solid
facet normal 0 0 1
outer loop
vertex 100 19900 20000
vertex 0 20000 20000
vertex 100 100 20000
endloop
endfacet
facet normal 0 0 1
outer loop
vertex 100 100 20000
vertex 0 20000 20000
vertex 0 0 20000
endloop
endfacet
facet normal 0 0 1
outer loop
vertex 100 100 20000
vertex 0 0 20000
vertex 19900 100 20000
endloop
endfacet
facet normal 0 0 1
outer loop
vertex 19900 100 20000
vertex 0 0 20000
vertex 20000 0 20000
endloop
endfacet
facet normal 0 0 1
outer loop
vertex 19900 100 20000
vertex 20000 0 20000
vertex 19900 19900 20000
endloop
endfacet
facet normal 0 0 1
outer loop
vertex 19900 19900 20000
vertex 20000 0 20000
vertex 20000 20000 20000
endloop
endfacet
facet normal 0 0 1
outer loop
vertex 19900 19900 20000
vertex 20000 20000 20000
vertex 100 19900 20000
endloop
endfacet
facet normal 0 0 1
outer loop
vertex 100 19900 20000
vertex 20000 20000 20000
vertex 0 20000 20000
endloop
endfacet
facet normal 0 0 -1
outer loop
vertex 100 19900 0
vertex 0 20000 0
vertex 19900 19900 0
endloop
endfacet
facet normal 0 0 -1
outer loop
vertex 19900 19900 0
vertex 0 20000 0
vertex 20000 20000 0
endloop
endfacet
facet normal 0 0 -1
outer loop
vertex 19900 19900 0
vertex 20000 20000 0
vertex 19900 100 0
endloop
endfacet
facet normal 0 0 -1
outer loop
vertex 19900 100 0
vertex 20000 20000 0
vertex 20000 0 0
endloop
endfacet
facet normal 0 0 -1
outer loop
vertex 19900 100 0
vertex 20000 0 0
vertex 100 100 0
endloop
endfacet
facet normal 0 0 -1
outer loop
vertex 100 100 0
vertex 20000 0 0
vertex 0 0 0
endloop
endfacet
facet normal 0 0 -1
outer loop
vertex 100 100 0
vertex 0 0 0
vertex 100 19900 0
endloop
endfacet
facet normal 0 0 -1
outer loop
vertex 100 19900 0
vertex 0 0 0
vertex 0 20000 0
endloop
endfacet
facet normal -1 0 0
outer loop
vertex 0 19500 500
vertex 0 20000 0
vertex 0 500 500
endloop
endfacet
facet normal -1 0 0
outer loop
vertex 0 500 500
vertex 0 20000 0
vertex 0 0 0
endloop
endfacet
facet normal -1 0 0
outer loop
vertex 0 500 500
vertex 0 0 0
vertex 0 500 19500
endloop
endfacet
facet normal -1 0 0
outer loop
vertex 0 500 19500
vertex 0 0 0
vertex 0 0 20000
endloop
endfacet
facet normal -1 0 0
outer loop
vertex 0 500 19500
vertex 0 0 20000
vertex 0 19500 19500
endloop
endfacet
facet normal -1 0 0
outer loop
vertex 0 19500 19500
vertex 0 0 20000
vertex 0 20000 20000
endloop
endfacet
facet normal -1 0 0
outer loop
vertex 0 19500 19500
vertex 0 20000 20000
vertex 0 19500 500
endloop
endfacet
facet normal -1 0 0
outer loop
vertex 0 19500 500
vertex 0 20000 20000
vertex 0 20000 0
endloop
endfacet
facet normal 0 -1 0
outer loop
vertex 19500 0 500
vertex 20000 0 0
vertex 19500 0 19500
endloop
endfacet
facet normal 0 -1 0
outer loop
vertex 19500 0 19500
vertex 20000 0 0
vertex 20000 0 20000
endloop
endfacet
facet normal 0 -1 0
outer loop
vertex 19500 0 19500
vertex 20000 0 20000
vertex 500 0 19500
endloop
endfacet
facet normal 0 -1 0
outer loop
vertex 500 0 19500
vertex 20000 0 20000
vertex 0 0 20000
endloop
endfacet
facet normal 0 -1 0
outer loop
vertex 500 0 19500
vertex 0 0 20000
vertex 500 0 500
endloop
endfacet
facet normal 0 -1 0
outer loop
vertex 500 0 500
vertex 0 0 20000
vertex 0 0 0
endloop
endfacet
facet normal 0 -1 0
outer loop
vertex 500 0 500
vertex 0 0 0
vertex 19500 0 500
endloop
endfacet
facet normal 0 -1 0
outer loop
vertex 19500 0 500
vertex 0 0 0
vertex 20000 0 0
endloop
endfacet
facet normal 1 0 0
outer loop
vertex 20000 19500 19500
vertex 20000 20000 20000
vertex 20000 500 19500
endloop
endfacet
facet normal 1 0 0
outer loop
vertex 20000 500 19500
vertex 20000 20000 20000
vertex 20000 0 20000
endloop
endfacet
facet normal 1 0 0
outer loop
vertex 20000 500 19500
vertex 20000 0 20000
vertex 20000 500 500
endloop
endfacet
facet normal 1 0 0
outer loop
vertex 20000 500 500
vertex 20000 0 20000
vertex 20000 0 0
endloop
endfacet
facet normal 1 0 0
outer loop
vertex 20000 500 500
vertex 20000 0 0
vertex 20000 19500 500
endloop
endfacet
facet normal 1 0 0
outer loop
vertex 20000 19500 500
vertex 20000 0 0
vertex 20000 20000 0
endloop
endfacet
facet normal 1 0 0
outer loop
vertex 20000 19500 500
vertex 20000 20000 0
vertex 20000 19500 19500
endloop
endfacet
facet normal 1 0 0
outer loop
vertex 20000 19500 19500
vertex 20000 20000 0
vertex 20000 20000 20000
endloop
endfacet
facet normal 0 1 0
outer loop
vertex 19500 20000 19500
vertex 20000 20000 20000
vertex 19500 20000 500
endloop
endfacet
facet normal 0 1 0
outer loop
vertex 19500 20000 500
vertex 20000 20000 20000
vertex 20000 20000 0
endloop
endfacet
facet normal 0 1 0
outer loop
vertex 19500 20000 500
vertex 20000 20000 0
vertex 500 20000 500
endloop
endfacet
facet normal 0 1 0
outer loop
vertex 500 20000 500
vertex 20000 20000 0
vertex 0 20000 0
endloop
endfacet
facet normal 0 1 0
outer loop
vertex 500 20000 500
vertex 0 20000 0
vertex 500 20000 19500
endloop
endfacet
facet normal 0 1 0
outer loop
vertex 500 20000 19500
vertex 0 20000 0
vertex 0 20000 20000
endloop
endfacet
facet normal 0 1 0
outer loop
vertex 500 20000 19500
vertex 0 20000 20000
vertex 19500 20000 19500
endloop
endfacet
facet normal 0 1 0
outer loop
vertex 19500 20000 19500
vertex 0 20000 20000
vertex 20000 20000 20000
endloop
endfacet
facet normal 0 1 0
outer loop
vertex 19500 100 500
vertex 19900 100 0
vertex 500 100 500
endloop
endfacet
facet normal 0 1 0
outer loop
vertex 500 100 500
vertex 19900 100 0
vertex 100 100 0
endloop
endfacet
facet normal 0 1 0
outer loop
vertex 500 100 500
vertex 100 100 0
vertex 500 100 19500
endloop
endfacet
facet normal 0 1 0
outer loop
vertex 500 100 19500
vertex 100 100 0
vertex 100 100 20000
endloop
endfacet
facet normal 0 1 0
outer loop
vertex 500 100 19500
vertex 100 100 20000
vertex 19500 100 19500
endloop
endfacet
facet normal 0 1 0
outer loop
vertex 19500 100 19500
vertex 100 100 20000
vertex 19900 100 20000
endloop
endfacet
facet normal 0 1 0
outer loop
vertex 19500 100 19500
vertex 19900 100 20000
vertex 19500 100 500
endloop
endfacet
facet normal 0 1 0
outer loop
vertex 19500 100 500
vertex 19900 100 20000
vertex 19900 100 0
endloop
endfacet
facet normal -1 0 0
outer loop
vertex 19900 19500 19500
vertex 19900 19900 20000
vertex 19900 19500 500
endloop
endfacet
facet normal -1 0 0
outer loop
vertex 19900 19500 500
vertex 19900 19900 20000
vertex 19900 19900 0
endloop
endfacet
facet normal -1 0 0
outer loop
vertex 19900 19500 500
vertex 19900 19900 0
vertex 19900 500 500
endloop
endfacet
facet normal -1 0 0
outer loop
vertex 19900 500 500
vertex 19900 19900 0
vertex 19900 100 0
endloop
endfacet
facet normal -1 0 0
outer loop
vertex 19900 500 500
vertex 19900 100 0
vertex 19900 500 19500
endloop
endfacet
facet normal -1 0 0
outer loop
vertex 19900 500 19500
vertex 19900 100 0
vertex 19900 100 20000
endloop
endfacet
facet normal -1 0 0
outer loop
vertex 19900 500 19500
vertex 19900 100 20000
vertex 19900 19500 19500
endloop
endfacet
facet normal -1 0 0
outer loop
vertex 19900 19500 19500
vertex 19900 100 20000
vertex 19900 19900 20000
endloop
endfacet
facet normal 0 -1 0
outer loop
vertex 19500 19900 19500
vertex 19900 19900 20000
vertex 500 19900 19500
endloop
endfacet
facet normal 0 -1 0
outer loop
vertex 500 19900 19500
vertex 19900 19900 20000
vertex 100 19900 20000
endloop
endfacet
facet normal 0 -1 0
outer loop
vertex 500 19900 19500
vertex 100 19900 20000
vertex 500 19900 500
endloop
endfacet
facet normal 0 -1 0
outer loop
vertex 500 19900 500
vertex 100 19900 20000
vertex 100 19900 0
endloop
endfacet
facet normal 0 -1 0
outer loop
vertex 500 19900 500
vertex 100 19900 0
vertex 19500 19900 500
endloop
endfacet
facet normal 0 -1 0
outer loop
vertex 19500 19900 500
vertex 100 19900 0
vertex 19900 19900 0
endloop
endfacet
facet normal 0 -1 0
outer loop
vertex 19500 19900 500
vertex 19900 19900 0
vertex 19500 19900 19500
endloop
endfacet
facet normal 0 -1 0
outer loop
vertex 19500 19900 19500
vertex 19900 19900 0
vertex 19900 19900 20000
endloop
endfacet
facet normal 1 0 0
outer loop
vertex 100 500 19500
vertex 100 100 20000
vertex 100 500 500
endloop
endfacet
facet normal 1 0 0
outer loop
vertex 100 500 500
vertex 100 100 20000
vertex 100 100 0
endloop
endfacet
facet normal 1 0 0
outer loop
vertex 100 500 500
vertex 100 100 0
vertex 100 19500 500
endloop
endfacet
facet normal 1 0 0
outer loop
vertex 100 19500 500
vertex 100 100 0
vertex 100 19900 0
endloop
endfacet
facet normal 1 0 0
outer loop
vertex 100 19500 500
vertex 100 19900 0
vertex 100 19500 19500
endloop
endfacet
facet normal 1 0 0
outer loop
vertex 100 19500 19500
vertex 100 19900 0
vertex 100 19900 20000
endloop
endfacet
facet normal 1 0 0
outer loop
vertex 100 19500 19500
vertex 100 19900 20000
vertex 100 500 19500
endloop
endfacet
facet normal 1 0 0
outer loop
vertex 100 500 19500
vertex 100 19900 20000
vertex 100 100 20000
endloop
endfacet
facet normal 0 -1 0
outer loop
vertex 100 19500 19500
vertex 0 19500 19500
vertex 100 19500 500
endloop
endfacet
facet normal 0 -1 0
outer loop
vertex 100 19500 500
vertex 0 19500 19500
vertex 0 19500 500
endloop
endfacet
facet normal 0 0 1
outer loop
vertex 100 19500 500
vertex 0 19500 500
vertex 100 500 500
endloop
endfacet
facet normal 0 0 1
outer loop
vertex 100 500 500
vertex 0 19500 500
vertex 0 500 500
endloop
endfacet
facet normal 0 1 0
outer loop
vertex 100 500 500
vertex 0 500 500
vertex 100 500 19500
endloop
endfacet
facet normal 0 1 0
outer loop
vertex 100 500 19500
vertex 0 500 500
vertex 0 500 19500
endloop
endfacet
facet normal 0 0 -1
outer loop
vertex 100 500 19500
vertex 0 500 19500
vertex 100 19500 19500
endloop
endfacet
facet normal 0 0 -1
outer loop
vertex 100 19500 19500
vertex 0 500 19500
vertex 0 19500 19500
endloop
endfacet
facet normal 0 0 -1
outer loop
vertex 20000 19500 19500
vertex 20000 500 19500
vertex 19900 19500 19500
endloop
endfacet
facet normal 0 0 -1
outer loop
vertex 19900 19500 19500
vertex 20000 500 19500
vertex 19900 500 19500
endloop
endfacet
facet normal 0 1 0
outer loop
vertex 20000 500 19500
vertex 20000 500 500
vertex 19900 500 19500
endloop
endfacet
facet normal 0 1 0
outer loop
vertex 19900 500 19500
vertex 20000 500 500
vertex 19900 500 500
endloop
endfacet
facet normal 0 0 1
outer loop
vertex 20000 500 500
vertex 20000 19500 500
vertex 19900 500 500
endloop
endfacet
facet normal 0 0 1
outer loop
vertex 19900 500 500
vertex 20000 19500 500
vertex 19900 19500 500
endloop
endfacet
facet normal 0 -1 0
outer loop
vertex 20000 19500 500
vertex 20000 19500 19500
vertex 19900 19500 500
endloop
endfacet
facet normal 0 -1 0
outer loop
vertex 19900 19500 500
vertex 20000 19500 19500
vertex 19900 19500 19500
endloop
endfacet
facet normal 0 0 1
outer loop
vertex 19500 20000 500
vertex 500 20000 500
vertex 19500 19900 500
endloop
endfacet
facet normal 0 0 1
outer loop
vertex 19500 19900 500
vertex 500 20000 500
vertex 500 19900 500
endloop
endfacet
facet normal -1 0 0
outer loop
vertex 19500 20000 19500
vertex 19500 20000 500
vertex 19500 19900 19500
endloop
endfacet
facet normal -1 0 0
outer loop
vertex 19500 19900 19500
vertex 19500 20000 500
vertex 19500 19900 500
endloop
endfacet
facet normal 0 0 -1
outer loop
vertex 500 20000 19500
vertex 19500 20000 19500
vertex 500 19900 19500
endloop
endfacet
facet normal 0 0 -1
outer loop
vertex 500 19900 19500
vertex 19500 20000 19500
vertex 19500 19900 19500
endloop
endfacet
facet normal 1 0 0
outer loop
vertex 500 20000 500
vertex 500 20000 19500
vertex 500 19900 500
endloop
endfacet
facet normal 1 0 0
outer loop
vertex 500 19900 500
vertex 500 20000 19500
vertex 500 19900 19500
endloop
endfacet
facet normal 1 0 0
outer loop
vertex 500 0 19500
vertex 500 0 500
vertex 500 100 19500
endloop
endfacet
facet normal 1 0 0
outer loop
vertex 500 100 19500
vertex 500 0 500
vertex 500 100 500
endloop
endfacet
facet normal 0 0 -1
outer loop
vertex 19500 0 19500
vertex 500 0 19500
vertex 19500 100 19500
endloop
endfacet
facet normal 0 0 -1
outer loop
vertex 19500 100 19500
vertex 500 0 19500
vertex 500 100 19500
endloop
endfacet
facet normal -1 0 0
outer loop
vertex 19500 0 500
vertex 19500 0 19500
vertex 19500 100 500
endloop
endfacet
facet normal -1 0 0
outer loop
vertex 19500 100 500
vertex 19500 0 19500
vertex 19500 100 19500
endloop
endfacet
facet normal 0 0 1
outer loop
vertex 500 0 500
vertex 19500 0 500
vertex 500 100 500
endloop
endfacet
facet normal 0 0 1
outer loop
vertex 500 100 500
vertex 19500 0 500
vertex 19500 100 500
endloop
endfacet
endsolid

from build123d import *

# Parameters (mm, degrees)
SKETCH3_W               = 20000
SKETCH3_H               = 20000
SKETCH3_W_2             = 19800
SKETCH3_H_2             = 19800
BOSS_EXTRUDE1_DEPTH     = 20000
SKETCH4_W               = 19000
SKETCH4_H               = 19000
CUT_EXTRUDE1_DEPTH      = 1
CUT_EXTRUDE1_DEPTH_BACK = 20001
SKETCH5_W               = 19000
SKETCH5_H               = 19000
CUT_EXTRUDE2_DEPTH      = 20000


with BuildPart() as part:
    # Sketch3 → Boss-Extrude1 (new body)
    with BuildSketch(Plane.XY):
        with Locations((10000, 10000)):
            Rectangle(SKETCH3_W, SKETCH3_H)
        with Locations((10000, 10000)):
            Rectangle(SKETCH3_W_2, SKETCH3_H_2, mode=Mode.SUBTRACT)
    extrude(amount=BOSS_EXTRUDE1_DEPTH)

    # Sketch4 → Cut-Extrude1 (cut, two sides)
    with BuildSketch(Plane.ZY) as cut_extrude1_sk:
        with Locations((10000, 10000)):
            Rectangle(SKETCH4_W, SKETCH4_H)
    extrude(amount=CUT_EXTRUDE1_DEPTH, mode=Mode.SUBTRACT)
    extrude(cut_extrude1_sk.sketch, amount=-CUT_EXTRUDE1_DEPTH_BACK, mode=Mode.SUBTRACT)

    # Sketch5 → Cut-Extrude2 (cut)
    with BuildSketch(Plane.XZ):
        with Locations((10000, 10000)):
            Rectangle(SKETCH5_W, SKETCH5_H)
    extrude(amount=-CUT_EXTRUDE2_DEPTH, mode=Mode.SUBTRACT)


solid = part.part
